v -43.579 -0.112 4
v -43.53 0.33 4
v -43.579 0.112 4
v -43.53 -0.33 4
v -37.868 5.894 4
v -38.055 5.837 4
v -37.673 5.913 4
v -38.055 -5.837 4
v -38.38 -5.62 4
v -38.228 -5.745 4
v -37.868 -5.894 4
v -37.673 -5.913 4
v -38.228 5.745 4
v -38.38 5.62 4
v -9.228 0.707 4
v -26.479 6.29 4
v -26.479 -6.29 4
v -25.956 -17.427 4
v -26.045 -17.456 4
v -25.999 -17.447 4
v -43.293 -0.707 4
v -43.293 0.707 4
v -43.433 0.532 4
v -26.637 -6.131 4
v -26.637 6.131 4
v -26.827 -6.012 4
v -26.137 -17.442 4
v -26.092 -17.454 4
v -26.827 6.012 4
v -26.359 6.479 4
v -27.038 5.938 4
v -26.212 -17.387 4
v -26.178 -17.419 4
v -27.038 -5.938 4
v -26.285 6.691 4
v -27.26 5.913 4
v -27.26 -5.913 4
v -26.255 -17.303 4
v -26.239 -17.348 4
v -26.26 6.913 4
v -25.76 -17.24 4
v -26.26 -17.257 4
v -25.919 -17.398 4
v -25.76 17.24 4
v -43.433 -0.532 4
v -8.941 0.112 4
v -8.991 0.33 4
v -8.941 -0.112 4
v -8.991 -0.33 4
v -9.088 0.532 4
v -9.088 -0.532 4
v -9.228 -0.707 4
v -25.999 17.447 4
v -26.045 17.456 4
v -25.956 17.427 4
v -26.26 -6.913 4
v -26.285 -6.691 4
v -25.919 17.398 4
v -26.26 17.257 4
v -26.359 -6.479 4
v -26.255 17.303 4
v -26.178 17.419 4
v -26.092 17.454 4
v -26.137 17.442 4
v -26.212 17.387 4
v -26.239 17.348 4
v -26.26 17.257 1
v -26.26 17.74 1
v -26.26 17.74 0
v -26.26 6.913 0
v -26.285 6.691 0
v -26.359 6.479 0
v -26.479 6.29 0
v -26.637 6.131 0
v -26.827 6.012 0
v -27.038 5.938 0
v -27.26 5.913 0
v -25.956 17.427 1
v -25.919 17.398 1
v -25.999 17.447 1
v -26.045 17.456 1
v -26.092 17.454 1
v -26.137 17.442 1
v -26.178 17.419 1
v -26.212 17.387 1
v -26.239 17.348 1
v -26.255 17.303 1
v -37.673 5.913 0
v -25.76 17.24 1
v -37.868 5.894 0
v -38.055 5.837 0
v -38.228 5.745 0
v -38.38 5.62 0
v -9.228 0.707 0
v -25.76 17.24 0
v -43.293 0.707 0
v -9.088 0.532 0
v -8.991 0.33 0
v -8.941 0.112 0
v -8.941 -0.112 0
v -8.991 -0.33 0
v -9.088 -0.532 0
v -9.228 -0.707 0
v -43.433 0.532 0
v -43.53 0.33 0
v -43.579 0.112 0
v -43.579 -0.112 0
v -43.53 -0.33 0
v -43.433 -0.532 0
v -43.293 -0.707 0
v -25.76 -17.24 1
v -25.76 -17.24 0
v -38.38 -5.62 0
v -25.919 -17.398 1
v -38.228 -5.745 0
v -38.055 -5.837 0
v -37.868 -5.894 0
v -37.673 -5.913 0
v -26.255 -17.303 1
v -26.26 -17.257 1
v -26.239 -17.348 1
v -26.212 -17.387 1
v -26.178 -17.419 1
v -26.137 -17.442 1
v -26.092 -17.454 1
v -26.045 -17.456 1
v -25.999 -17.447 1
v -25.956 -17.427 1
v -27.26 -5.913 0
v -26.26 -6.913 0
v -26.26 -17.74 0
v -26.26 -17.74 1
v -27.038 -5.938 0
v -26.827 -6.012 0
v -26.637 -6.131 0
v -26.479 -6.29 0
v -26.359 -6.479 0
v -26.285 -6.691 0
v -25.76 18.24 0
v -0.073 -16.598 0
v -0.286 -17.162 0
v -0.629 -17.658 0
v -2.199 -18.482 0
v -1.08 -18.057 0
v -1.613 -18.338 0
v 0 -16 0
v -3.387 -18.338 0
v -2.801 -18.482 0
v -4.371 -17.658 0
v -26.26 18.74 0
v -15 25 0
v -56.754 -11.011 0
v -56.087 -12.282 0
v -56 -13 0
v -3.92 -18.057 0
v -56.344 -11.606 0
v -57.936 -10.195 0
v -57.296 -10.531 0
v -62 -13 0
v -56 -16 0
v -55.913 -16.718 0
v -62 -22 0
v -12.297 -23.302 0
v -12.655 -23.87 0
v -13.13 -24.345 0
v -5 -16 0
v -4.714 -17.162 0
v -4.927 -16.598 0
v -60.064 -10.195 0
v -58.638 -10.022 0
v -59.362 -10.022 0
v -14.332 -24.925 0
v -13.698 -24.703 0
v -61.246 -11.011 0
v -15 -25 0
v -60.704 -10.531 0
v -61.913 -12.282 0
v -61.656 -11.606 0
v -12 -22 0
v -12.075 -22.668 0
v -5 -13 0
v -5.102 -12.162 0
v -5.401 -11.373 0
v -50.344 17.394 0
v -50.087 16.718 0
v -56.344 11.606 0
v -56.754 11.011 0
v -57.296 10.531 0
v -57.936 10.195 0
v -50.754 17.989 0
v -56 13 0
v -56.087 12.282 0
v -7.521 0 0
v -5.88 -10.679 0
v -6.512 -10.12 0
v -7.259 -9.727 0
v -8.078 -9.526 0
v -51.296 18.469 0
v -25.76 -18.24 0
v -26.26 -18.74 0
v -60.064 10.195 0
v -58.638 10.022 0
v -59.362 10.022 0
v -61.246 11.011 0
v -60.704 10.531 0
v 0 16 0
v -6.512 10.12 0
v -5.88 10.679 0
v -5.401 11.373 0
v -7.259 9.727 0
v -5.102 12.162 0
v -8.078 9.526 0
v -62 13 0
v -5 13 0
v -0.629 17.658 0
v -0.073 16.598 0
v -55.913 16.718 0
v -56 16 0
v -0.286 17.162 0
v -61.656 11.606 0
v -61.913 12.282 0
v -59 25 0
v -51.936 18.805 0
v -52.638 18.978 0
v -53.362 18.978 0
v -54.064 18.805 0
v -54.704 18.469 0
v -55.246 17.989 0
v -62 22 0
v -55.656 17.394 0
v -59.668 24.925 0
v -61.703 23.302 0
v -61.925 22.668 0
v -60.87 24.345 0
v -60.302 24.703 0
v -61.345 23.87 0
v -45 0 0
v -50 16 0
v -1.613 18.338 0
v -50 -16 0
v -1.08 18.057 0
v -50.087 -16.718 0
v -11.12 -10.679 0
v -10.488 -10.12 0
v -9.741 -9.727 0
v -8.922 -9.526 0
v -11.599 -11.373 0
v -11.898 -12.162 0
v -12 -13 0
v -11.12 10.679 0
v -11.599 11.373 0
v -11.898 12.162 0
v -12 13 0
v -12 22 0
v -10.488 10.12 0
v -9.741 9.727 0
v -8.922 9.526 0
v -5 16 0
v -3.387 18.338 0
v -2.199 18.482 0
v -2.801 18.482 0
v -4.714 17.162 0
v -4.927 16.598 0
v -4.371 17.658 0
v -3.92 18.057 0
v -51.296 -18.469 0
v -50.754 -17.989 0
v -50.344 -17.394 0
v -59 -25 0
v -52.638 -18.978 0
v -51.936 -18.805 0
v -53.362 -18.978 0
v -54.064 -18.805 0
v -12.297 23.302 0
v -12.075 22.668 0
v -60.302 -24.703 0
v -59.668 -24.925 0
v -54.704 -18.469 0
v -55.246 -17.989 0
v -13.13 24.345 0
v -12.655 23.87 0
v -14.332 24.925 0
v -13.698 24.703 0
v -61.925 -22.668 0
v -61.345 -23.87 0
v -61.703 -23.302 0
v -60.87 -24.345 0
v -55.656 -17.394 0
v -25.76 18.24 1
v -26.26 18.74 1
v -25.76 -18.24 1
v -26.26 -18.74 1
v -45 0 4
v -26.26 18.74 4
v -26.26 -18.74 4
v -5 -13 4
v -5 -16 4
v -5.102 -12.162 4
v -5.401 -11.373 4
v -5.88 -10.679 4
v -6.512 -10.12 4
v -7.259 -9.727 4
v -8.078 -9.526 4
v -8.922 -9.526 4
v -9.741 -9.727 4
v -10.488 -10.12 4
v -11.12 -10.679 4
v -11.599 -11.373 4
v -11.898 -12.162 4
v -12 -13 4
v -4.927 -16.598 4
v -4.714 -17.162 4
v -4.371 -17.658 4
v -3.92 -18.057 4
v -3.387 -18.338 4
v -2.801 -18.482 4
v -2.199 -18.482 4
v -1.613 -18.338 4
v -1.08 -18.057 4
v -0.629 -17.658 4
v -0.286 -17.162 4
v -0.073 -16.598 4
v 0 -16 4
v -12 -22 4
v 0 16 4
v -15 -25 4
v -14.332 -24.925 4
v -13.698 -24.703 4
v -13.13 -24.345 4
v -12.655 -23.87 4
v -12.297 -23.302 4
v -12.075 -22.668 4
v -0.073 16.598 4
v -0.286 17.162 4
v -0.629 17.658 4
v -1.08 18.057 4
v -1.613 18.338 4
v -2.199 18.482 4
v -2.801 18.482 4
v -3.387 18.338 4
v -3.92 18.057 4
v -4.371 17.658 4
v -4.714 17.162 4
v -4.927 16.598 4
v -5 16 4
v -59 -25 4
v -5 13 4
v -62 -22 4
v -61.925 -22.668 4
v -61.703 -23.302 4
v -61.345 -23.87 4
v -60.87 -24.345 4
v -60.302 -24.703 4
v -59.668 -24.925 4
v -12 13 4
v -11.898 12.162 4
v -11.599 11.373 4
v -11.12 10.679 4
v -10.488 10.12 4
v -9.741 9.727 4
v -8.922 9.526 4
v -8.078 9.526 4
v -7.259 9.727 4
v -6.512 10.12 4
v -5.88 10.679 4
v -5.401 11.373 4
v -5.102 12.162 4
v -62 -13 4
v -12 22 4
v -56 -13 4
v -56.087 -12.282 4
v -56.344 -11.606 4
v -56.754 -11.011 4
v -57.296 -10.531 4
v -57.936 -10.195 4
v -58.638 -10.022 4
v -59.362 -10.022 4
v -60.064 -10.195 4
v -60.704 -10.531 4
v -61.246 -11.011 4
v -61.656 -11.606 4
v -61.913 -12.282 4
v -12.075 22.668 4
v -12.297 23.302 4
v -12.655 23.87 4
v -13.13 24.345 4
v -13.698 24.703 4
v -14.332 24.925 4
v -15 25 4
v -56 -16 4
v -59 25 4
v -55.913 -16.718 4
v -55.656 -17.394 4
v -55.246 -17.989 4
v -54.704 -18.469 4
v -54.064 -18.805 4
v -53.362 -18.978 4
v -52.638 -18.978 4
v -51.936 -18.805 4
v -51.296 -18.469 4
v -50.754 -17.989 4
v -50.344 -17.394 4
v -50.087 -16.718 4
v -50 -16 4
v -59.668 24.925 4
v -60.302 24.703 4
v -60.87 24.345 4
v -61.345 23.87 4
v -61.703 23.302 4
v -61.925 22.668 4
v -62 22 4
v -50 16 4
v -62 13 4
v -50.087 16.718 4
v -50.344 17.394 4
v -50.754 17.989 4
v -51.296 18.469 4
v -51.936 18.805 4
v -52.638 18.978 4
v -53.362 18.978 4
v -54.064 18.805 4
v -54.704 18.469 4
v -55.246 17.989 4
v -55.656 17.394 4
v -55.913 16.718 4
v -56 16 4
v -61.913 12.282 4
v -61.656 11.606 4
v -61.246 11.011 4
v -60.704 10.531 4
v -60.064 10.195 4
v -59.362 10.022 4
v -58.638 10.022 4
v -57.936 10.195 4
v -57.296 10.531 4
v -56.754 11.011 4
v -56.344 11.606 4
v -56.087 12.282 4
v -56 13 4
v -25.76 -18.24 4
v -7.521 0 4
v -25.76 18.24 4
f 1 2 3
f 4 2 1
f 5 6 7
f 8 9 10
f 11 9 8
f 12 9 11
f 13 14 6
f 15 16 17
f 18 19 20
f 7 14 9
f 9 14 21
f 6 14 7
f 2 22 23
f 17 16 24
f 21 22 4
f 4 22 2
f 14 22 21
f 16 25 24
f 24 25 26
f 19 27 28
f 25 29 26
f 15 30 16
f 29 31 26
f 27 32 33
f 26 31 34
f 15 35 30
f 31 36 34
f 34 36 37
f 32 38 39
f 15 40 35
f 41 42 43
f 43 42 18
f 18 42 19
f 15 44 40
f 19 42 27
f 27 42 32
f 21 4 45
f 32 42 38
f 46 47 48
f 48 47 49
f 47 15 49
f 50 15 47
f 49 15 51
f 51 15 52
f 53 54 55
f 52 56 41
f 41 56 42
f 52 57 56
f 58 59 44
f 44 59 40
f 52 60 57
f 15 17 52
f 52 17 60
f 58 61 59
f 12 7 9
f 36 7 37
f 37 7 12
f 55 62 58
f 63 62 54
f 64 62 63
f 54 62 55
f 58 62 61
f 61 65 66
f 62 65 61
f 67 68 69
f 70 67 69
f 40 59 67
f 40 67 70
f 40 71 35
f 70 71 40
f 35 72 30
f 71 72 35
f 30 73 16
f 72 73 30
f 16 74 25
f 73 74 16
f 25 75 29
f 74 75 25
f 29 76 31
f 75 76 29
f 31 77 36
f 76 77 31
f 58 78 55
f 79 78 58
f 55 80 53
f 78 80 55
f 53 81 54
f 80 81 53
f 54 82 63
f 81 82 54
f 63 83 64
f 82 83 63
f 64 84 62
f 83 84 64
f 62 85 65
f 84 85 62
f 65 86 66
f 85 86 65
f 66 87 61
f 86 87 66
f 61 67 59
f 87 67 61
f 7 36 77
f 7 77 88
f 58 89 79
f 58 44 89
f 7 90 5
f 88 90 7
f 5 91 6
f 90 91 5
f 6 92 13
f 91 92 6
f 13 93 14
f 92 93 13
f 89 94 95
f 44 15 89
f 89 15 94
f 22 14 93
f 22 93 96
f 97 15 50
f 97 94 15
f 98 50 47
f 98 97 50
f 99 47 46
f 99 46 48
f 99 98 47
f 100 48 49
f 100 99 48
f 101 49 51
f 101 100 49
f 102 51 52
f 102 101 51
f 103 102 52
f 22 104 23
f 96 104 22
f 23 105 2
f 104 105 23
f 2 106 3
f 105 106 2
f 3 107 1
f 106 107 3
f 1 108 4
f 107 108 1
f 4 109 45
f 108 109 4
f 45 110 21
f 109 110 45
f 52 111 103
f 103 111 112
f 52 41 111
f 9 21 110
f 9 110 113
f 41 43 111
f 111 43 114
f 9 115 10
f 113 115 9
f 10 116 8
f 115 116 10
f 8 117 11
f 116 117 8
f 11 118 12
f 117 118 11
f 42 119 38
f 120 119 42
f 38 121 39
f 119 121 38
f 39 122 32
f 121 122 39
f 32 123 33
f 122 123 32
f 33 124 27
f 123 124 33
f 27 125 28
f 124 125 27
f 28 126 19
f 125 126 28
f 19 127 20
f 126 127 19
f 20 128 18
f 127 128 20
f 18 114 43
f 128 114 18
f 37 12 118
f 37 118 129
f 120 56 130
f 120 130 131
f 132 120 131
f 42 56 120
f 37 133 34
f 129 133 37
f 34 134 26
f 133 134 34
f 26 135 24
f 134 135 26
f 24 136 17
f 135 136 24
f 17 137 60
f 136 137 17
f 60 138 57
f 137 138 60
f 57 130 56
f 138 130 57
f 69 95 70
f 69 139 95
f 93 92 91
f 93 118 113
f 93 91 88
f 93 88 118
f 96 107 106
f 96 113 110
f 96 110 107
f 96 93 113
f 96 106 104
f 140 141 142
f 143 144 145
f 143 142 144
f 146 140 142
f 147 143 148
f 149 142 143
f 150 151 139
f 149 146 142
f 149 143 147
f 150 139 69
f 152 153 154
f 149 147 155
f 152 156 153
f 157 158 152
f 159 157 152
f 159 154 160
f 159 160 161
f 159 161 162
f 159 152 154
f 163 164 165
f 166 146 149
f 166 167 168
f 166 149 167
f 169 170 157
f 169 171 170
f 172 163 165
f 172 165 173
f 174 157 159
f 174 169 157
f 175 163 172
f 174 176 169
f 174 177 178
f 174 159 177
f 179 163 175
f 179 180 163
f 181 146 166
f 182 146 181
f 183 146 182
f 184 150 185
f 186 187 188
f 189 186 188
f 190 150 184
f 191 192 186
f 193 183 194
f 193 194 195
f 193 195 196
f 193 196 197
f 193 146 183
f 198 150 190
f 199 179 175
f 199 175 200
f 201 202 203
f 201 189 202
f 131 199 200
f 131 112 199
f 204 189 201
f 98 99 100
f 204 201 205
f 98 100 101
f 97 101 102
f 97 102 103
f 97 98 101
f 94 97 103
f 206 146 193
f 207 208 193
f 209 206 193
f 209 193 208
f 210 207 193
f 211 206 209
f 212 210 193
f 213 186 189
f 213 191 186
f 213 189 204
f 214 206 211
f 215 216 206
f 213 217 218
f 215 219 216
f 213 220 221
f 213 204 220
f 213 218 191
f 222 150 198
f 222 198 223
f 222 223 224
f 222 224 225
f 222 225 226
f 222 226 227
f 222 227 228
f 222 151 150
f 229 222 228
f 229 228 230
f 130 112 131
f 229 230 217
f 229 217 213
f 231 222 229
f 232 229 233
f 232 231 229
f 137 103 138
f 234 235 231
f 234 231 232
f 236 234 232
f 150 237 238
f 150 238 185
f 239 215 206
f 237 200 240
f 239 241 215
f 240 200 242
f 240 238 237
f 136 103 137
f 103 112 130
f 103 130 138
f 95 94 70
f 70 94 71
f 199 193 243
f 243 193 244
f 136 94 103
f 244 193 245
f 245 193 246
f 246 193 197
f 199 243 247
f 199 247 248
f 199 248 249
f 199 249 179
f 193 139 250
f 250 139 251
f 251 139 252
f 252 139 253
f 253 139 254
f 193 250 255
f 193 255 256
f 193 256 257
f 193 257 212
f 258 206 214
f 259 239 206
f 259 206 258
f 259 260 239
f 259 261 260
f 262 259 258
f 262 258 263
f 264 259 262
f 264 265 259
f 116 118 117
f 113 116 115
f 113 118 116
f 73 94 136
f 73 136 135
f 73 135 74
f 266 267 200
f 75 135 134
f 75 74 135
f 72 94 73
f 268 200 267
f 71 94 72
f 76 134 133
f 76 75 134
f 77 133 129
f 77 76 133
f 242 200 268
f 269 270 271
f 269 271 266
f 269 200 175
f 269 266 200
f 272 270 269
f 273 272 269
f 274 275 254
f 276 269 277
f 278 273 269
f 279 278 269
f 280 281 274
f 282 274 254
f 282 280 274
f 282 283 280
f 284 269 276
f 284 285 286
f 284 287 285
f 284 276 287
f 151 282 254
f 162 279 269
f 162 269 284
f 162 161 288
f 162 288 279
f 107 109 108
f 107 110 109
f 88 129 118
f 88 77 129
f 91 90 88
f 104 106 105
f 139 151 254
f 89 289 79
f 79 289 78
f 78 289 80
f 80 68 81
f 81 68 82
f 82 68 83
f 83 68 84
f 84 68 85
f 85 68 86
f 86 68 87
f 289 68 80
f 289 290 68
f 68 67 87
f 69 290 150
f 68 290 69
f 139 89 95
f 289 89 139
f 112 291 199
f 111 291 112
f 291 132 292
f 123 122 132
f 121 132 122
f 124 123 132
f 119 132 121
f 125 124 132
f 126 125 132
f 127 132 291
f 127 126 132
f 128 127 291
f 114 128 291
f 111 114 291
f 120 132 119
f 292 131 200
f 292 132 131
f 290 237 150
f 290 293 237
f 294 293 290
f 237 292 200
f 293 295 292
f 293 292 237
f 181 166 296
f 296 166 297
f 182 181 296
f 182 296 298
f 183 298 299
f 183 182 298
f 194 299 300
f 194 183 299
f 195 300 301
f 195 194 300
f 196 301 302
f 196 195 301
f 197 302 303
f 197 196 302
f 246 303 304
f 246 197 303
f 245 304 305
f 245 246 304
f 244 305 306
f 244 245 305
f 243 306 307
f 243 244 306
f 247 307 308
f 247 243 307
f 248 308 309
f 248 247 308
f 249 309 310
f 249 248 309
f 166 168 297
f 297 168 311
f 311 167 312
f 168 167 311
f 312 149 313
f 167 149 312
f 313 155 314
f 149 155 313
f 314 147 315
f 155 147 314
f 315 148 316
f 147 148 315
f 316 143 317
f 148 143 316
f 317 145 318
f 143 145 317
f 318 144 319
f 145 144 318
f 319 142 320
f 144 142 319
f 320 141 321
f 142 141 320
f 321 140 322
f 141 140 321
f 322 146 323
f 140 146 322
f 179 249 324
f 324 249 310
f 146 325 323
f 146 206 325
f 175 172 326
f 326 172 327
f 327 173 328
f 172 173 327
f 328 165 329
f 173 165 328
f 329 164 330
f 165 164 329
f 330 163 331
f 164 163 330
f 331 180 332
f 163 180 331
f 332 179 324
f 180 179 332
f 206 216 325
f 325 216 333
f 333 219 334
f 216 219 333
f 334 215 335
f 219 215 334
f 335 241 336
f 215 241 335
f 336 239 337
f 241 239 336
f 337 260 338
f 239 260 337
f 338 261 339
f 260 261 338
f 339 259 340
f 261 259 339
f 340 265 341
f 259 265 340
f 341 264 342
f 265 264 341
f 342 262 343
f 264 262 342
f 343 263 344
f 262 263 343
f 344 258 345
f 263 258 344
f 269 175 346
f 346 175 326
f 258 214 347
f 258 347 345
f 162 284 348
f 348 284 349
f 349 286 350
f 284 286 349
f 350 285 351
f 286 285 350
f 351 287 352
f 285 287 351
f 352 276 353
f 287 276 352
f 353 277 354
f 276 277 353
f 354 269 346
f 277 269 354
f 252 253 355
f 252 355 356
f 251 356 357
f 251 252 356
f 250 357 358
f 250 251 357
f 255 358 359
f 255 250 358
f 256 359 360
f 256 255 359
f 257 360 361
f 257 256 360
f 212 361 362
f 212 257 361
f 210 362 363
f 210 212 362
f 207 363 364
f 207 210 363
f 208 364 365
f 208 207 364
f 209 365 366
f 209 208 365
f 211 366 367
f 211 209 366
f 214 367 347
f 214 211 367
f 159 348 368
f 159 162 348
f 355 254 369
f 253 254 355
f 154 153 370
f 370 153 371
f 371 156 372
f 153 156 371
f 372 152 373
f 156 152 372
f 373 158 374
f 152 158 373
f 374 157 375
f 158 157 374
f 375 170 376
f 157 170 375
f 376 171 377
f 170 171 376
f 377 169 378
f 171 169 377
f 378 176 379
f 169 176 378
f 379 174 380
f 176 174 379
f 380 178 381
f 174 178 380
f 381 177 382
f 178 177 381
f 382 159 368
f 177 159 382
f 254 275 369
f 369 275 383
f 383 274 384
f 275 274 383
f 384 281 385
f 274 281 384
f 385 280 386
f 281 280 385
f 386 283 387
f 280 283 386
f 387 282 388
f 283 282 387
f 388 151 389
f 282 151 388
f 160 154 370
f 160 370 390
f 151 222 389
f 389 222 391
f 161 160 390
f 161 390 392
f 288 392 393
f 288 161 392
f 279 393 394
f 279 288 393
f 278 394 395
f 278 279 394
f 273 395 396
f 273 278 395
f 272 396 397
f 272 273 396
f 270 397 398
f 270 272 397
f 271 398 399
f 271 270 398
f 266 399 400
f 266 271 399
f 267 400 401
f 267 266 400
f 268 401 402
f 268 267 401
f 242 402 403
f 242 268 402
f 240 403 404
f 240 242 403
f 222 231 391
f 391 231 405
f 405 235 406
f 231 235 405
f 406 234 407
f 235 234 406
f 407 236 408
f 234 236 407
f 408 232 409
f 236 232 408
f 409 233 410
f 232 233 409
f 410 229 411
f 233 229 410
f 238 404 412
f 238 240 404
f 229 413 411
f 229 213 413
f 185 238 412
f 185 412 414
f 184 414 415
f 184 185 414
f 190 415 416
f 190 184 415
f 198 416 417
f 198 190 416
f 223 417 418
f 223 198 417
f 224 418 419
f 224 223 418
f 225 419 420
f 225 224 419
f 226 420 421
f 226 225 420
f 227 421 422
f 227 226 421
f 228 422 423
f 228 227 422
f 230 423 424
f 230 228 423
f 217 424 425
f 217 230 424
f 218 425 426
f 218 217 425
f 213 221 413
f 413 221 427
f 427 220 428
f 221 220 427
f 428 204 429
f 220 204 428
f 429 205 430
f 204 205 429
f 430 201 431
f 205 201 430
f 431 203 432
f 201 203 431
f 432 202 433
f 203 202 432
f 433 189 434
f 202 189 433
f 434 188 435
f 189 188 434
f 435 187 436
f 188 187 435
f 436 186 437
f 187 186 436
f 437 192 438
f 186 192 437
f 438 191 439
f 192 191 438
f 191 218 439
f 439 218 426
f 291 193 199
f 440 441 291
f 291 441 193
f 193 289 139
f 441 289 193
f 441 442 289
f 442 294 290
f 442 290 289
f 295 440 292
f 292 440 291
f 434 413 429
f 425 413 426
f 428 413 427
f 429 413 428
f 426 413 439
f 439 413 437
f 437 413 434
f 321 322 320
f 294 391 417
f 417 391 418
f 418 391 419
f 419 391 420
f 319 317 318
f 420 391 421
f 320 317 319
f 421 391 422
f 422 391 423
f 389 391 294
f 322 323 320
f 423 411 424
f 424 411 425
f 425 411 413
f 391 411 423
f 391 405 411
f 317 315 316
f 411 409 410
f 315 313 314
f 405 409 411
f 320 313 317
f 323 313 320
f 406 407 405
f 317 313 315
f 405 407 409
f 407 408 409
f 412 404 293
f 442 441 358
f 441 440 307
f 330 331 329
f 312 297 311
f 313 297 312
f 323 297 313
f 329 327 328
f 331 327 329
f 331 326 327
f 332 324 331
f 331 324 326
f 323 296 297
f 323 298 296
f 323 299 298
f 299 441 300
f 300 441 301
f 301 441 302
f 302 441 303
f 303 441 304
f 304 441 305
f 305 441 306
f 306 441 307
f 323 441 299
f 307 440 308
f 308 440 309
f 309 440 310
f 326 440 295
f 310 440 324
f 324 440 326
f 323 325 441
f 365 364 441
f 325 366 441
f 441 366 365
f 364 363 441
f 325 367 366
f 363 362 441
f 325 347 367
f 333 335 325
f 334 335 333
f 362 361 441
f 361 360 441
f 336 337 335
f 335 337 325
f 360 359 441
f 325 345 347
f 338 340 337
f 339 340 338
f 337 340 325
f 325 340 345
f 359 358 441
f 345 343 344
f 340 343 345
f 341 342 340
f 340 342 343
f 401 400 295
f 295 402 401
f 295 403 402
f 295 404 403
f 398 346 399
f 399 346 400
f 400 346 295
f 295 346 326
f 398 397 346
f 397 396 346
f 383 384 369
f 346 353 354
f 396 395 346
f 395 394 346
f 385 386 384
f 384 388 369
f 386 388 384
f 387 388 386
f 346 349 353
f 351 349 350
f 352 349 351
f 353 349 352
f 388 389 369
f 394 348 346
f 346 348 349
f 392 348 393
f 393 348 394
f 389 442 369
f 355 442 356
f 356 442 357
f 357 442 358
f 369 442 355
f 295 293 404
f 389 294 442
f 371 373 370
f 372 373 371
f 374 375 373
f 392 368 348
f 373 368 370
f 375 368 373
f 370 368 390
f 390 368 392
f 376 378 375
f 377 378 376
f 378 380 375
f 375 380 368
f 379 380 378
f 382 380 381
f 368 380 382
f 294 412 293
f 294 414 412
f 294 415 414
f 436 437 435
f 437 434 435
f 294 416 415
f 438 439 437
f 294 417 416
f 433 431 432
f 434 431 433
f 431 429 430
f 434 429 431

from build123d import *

# Parameters (mm, degrees)
PAD_DEPTH       = 4
POCKET_DEPTH    = 4.001
POCKET001_DEPTH = 3
FILLET_R        = 0.2
FILLET001_R     = 0.2
FILLET002_R     = 1


with BuildPart() as part:
    # Sketch002 → Pad (new body)
    with BuildSketch(Plane.XY):
        with BuildLine():
            ThreePointArc((-5, -13), (-8.5, -9.5), (-12, -13))
            Line((-12, -22), (-12, -13))
            ThreePointArc((-15, -25), (-12.87868, -24.12132), (-12, -22))
            Line((-59, -25), (-15, -25))
            ThreePointArc((-62, -22), (-61.12132, -24.12132), (-59, -25))
            Line((-62, -13), (-62, -22))
            ThreePointArc((-56, -13), (-59, -10), (-62, -13))
            Line((-56, -13), (-56, -16))
            ThreePointArc((-56, -16), (-53, -19), (-50, -16))
            Line((-50, 16), (-50, -16))
            ThreePointArc((-50, 16), (-53, 19), (-56, 16))
            Line((-56, 13), (-56, 16))
            ThreePointArc((-62, 13), (-59, 10), (-56, 13))
            Line((-62, 22), (-62, 13))
            ThreePointArc((-59, 25), (-61.12132, 24.12132), (-62, 22))
            Line((-15, 25), (-59, 25))
            ThreePointArc((-12, 22), (-12.87868, 24.12132), (-15, 25))
            Line((-12, 22), (-12, 13))
            ThreePointArc((-12, 13), (-8.5, 9.5), (-5, 13))
            Line((-5, 13), (-5, 16))
            ThreePointArc((0, 16), (-2.5, 18.5), (-5, 16))
            Line((0, -16), (0, 16))
            ThreePointArc((-5, -16), (-2.5, -18.5), (0, -16))
            Line((-5, -13), (-5, -16))
        make_face()
    extrude(amount=PAD_DEPTH)

    # Sketch001 (on Face26 of Pad) → Pocket (cut, through all)
    with BuildSketch(Plane.XY.offset(4)):
        Polygon((-45, 0), (-26.260408, 18.739592), (-26.260408, 17.739592), (-26.260408, 5.913197), (-38.086803, 5.913197), (-44, 0), (-38.086803, -5.913197), (-26.260408, -5.913197), (-26.260408, -17.739592), (-26.260408, -18.739592), align=None)
        Polygon((-7.520815, 0), (-25.760408, 18.239592), (-25.760408, 17.239592), (-8.520815, 0), (-25.760408, -17.239592), (-25.760408, -18.239592), align=None)
    extrude(amount=-POCKET_DEPTH, mode=Mode.SUBTRACT)

    # Sketch (on Face5 of Pocket) → Pocket001 (cut)
    with BuildSketch(Plane.XY.offset(4)):
        Polygon((-25.760408, -17.239592), (-26.260408, -17.739592), (-26.260408, -18.739592), (-25.760408, -18.239592), align=None)
        Polygon((-26.260408, 18.739592), (-25.760408, 18.239592), (-25.760408, 17.239592), (-26.260408, 17.739592), align=None)
    extrude(amount=-POCKET001_DEPTH, mode=Mode.SUBTRACT)

    # Fillet
    fillet_edges = [part.edges().sort_by_distance(p)[0] for p in [
        (-26.260408, -17.739592, 2.5),
    ]]
    fillet(fillet_edges, radius=FILLET_R)

    # Fillet001
    fillet001_edges = [part.edges().sort_by_distance(p)[0] for p in [
        (-26.260408, 17.739592, 2.5),
    ]]
    fillet(fillet001_edges, radius=FILLET001_R)

    # Fillet002
    fillet002_edges = [part.edges().sort_by_distance(p)[0] for p in [
        (-44, 0, 2),
        (-38.086803, -5.913197, 2),
        (-38.086803, 5.913197, 2),
        (-26.260408, 5.913197, 2),
        (-26.260408, -5.913197, 2),
        (-8.520815, 0, 2),
    ]]
    fillet(fillet002_edges, radius=FILLET002_R)


solid = part.part
